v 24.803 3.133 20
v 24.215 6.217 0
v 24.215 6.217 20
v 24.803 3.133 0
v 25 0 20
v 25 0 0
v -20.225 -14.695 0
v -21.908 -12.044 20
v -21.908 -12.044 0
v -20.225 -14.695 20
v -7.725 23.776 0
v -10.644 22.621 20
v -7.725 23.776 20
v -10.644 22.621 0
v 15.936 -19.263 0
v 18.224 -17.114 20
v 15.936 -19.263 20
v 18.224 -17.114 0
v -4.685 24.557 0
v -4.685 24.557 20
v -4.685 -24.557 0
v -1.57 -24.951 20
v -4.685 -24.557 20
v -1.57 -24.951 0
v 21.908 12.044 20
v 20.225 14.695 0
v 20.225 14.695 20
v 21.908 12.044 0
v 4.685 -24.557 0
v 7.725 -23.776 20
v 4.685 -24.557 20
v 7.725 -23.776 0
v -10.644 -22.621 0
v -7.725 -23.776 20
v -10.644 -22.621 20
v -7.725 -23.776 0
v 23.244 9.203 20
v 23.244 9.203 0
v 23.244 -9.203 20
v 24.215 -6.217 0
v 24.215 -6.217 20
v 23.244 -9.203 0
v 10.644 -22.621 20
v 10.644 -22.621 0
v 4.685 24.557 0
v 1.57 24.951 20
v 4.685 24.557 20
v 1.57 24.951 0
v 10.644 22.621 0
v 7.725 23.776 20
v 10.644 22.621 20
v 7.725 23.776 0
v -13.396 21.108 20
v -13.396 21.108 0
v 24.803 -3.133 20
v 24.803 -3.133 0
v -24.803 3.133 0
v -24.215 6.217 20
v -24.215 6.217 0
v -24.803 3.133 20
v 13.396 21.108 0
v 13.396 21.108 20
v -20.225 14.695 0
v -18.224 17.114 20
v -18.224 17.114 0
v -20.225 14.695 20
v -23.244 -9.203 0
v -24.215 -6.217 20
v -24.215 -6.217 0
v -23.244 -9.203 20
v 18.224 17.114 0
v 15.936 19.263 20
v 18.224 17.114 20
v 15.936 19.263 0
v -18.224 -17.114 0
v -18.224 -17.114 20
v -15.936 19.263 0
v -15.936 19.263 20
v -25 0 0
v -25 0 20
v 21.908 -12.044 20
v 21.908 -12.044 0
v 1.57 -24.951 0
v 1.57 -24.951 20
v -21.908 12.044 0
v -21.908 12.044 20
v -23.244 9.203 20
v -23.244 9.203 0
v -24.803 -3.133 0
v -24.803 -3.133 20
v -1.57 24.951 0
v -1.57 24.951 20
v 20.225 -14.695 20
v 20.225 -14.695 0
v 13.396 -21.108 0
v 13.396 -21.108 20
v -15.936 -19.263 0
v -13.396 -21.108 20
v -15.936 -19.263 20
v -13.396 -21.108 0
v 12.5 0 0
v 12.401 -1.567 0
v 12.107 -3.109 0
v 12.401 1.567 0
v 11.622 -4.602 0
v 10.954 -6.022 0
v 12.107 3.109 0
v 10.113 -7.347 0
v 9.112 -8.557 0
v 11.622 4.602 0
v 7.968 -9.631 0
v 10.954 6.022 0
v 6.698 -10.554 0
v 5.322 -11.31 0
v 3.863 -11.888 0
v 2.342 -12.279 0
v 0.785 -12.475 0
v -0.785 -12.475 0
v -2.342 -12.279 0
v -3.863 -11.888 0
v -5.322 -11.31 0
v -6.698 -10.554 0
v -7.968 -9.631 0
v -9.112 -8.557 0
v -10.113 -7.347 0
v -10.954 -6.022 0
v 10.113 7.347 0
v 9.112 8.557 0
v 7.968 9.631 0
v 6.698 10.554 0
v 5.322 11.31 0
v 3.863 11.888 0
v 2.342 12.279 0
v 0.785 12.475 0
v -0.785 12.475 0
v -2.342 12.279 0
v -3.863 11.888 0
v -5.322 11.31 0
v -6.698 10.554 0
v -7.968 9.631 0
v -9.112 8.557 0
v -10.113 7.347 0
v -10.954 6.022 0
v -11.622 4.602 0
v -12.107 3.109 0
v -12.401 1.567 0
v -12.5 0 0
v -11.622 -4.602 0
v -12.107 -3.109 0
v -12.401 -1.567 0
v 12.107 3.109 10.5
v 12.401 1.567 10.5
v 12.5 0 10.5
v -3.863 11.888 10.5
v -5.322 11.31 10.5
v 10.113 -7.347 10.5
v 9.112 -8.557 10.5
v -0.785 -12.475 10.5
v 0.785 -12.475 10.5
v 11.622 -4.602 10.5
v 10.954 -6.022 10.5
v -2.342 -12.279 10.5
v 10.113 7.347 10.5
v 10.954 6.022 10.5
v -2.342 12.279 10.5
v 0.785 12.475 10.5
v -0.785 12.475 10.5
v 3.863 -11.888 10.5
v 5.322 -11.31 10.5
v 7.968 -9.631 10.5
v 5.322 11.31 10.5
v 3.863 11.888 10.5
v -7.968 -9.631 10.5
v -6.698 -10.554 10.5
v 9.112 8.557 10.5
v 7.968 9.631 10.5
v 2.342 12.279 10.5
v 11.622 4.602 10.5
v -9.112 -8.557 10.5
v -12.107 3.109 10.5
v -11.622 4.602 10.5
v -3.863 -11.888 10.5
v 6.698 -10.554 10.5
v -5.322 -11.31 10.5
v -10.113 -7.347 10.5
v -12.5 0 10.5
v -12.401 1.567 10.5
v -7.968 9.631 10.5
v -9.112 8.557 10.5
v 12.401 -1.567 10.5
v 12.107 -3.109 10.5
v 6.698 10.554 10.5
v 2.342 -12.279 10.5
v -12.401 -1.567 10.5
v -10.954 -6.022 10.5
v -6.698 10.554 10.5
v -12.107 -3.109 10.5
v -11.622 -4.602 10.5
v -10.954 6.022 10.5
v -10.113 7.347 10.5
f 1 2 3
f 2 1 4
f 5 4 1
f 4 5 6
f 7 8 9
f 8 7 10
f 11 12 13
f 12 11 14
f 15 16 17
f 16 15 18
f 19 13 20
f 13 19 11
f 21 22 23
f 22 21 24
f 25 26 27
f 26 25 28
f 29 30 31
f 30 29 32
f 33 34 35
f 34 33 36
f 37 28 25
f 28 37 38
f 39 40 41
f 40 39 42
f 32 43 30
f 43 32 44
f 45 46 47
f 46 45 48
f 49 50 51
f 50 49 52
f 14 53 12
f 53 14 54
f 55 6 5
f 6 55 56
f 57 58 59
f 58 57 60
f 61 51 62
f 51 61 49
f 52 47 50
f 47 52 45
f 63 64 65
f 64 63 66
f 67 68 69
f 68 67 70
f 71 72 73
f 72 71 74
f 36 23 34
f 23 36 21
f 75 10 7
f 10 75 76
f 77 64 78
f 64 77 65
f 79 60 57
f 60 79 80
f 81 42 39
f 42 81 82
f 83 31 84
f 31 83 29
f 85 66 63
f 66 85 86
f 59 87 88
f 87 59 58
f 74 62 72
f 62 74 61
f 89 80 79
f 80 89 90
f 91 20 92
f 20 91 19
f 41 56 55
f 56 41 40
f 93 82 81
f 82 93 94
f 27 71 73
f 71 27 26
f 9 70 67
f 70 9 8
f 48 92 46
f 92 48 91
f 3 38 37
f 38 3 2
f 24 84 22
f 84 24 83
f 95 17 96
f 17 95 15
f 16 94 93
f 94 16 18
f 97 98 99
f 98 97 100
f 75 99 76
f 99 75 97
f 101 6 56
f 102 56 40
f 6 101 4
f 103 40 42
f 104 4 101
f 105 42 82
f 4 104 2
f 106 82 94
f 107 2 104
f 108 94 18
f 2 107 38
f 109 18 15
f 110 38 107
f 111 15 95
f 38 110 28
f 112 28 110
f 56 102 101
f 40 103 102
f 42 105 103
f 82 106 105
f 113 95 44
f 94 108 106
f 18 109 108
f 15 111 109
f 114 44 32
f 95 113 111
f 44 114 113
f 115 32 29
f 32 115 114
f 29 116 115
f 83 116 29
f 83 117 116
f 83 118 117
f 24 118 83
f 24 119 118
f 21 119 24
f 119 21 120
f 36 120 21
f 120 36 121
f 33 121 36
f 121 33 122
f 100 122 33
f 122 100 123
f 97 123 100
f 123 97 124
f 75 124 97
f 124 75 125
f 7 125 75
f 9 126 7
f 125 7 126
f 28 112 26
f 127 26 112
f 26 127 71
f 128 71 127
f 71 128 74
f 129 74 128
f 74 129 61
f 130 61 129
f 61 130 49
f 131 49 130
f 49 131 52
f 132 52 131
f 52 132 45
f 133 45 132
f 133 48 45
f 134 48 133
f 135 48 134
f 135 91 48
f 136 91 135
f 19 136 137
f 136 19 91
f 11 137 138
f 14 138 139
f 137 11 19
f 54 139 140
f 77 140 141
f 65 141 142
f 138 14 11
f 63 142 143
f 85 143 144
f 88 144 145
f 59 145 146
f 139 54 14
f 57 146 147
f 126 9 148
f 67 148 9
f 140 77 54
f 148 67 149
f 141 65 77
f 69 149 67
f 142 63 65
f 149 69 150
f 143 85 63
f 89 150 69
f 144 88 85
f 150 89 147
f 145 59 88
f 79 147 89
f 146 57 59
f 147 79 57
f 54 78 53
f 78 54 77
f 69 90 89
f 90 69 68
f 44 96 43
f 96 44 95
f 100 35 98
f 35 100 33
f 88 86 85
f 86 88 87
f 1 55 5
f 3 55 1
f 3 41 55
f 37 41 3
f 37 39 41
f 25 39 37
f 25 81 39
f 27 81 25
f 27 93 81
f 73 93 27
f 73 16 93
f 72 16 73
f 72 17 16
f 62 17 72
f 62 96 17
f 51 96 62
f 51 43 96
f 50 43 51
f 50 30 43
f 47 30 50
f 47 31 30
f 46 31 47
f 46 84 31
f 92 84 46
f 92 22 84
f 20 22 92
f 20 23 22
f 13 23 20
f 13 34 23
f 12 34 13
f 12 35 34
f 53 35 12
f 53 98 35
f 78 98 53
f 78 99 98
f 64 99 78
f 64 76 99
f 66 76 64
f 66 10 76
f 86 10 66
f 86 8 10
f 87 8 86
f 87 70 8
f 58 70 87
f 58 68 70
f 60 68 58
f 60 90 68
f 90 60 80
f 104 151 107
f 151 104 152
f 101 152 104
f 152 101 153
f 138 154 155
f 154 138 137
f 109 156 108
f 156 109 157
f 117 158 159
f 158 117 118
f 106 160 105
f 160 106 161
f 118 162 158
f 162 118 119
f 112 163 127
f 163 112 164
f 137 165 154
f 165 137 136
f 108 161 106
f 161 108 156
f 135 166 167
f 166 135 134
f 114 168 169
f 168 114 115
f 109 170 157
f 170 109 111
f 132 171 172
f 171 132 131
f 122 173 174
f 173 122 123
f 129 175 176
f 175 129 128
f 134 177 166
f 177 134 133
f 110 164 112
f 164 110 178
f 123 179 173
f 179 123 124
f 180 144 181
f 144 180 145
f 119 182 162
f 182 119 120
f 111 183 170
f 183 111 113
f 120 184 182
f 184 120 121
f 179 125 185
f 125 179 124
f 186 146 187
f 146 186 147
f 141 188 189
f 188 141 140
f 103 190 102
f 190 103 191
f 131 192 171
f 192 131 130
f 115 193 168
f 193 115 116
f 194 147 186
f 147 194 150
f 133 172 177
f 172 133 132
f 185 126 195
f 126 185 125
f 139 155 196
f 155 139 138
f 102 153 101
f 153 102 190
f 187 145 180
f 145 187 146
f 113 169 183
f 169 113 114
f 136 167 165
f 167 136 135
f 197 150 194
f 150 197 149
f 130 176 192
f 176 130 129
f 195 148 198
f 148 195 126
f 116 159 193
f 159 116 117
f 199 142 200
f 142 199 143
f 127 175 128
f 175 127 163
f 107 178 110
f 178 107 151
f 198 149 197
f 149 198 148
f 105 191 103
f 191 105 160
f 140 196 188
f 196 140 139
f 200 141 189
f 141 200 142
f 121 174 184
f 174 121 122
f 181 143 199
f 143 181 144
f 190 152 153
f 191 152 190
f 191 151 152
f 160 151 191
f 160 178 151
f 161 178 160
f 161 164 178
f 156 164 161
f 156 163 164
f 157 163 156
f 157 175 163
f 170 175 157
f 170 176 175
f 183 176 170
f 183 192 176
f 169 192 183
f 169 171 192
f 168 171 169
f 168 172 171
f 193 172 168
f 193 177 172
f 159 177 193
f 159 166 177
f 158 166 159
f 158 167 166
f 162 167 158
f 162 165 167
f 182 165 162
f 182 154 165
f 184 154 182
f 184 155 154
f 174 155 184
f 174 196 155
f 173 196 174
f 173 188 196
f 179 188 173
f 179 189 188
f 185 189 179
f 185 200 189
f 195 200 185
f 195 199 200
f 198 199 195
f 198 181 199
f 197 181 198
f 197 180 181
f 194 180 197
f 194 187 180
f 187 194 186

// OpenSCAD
// Adapter parameters
adapter_diameter = 50;
adapter_height = 20;
hole_diameter = 25;
wall_thickness = 3;

// Main body
difference() {
  cylinder(h = adapter_height, r = adapter_diameter / 2, $fn = 50);
  cylinder(h = adapter_height + 1, r = hole_diameter / 2, center = true, $fn = 50);
}
